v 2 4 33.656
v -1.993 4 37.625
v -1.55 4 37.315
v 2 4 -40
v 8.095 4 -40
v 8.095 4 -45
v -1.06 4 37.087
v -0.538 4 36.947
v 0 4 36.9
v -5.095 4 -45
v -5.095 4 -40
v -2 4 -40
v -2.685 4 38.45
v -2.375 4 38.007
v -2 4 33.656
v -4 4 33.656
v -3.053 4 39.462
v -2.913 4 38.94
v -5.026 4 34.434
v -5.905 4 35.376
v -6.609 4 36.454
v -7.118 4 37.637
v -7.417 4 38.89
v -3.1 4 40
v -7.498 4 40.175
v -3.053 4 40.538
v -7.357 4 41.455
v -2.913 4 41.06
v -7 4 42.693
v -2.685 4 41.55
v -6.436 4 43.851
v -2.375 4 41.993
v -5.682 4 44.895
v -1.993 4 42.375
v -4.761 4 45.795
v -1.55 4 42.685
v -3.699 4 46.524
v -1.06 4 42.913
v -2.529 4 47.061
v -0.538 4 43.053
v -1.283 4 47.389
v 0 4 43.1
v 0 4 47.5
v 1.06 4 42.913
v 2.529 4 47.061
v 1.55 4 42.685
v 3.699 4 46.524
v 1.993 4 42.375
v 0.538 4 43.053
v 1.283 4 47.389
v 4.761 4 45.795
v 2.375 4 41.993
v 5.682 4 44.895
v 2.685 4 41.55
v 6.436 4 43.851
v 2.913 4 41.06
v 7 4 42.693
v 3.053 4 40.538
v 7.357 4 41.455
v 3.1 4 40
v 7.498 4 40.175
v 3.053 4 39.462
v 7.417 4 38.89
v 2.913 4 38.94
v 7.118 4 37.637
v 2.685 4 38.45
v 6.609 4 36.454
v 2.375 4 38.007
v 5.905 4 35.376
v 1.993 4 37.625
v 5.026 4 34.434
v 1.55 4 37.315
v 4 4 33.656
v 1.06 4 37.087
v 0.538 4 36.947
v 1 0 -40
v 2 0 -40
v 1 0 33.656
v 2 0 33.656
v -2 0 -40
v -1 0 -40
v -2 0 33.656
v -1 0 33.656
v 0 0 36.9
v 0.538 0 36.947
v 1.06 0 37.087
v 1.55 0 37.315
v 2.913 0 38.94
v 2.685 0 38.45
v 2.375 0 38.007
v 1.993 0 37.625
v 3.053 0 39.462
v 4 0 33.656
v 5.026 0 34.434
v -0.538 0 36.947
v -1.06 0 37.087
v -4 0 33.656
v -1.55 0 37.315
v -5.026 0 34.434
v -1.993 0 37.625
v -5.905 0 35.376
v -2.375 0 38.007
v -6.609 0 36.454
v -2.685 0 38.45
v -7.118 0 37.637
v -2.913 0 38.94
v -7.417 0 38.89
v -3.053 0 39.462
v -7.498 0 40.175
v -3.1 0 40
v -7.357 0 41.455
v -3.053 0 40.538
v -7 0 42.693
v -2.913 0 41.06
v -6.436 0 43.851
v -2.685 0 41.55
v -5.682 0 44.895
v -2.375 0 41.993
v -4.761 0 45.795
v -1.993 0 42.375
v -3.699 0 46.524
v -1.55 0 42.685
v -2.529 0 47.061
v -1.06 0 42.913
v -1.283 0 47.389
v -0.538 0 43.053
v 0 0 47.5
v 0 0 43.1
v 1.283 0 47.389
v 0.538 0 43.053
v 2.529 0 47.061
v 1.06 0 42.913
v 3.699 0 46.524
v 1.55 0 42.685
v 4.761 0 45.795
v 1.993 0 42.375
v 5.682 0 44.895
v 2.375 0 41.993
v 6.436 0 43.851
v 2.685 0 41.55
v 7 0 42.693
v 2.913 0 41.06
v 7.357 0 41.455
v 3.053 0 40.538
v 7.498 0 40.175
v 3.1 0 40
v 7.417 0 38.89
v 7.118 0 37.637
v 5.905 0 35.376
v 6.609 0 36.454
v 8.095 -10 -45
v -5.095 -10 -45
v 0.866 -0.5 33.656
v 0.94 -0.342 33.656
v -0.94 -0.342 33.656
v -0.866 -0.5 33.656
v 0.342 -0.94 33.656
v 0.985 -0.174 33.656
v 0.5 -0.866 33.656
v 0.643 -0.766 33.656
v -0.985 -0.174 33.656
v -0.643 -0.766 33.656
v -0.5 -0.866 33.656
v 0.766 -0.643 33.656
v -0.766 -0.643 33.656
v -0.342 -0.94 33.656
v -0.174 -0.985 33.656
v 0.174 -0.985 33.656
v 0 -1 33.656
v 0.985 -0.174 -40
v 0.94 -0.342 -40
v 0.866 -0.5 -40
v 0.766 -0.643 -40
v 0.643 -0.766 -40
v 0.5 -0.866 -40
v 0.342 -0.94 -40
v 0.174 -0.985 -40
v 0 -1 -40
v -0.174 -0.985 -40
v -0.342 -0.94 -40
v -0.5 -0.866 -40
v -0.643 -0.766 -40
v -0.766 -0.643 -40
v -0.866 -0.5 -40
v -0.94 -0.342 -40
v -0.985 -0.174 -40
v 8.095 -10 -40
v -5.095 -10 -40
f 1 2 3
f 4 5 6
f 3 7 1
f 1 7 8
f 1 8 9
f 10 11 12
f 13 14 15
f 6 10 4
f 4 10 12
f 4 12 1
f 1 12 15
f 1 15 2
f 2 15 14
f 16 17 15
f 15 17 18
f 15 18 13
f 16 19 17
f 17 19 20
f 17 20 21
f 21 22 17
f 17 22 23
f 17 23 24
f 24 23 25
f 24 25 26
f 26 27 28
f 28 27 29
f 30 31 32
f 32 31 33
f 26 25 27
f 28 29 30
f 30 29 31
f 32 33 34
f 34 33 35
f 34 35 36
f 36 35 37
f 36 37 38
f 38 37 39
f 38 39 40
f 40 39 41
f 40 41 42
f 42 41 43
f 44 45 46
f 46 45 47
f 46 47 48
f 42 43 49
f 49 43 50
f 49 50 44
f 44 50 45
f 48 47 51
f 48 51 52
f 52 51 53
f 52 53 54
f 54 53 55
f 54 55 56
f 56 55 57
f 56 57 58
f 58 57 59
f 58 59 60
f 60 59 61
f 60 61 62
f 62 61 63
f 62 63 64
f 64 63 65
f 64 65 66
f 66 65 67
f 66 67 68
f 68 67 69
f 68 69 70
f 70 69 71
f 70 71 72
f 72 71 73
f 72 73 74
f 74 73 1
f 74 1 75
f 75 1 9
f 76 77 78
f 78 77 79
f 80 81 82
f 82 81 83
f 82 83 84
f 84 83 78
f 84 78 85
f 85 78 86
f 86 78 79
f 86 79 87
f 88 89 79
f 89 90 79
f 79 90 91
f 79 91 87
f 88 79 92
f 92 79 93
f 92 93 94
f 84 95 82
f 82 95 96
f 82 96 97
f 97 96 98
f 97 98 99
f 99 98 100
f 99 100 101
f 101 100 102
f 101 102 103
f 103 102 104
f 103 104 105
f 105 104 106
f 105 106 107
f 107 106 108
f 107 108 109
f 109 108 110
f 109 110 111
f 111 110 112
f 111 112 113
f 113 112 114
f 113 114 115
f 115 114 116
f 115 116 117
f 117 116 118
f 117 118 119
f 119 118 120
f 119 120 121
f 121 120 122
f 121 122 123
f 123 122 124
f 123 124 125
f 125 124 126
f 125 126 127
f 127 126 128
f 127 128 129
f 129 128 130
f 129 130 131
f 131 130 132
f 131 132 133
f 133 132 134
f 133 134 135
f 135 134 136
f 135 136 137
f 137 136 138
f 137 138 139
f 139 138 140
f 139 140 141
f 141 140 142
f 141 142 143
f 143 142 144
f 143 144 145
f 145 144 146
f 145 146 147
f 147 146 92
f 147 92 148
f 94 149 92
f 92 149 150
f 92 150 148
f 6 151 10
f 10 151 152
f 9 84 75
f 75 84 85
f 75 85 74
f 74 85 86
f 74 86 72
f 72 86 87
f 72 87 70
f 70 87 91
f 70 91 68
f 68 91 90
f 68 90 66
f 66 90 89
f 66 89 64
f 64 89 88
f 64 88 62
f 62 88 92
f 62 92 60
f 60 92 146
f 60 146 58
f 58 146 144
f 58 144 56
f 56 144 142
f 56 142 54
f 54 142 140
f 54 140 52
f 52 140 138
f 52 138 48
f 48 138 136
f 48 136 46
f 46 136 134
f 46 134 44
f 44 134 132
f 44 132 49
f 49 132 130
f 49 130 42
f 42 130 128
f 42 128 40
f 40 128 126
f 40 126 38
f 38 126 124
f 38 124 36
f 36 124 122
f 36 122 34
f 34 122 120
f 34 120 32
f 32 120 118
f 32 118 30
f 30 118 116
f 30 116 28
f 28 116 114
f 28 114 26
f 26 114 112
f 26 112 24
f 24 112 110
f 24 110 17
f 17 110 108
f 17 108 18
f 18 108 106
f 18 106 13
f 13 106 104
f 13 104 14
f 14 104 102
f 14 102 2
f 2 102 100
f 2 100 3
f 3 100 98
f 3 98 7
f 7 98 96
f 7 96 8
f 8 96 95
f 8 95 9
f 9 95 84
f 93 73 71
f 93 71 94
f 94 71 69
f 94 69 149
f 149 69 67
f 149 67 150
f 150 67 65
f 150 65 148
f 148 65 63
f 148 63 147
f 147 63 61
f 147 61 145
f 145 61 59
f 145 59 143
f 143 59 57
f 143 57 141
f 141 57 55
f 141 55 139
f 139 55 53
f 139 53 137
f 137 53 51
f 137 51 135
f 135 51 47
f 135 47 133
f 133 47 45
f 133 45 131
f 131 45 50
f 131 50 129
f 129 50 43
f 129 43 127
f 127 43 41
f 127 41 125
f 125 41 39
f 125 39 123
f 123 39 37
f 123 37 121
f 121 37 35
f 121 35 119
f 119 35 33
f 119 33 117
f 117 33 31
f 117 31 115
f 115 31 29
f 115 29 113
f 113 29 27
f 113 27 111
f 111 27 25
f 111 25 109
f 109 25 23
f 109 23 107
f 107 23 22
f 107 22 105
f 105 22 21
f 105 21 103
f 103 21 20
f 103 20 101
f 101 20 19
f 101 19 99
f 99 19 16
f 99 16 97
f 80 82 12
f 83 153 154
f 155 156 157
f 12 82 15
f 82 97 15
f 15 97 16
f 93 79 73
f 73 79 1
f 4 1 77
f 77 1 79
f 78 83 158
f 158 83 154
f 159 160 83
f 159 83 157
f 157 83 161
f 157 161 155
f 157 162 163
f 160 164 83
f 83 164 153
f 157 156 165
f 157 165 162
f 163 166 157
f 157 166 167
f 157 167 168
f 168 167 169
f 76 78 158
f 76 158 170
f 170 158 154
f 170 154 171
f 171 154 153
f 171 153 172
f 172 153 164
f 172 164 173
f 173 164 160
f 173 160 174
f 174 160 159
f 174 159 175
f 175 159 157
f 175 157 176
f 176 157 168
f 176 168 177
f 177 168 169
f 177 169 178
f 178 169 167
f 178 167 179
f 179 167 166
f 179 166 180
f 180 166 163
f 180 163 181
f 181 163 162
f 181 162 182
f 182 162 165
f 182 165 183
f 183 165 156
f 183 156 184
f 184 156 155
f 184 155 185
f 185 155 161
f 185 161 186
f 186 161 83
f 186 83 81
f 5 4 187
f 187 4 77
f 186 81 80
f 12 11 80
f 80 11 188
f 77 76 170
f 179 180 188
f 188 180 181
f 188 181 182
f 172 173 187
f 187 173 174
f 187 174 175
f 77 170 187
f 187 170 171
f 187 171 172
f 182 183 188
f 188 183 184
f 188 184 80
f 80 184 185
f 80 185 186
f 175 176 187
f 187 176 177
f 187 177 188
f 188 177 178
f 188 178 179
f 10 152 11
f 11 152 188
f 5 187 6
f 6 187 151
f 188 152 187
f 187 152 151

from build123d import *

# Parameters (mm, degrees)
SKETCH1_W                       = 8
SKETCH1_H                       = 90
SKETCH1_R                       = 3.1
BOSS_EXTRUDE1_DEPTH             = 4
FILLET1_R                       = 4
BOSS_EXTRUDE2_START             = -4
SKETCH2_R                       = 7.5
SKETCH2_R_2                     = 3.1
BOSS_EXTRUDE2_DEPTH             = 4
SKETCH3_W                       = 2
SKETCH3_H                       = 78.65571123
CUT_EXTRUDE2_DEPTH              = 49.254533466
SKETCH4_W                       = 1
SKETCH4_H                       = 78.65571123
SKETCH5_W                       = 13.19082965
SKETCH5_H                       = 5
BOSS_EXTRUDE5_DEPTH             = 10
BOSS_EXTRUDE5_DIRECTION_2_REACH = 50.255


with BuildPart() as part:
    # Sketch1 → Boss-Extrude1 (new body)
    with BuildSketch(Plane(origin=(0, 0, 0), x_dir=(1, 0, 0), z_dir=(0, 1, 0))):
        Rectangle(SKETCH1_W, SKETCH1_H)
        with Locations(Location((0, -40, 0), (0, 0, 270))):
            Circle(SKETCH1_R, mode=Mode.SUBTRACT)
    extrude(amount=BOSS_EXTRUDE1_DEPTH)

    # Fillet1
    fillet1_edges = [part.edges().sort_by_distance(p)[0] for p in [
        (-4, 2, 45),
        (4, 2, 45),
    ]]
    fillet(fillet1_edges, radius=FILLET1_R - 0.0001)  # a hair under: the kernel refuses the full size

    # Sketch2 → Boss-Extrude2 (add)
    with BuildSketch(Plane(origin=(0, 4, 0), x_dir=(1, 0, 0), z_dir=(0, 1, 0)).offset(BOSS_EXTRUDE2_START)):
        with Locations((0, -40)):
            Circle(SKETCH2_R)
        with Locations(Location((0, -40, 0), (0, 0, 270))):
            Circle(SKETCH2_R_2, mode=Mode.SUBTRACT)
    extrude(amount=BOSS_EXTRUDE2_DEPTH)

    # Sketch3 → Cut-Extrude2 (cut, through all)
    with BuildSketch(Plane(origin=(0, 4, 0), x_dir=(1, 0, 0), z_dir=(0, 1, 0))):
        with Locations((3, 5.672144385)):
            Rectangle(SKETCH3_W, SKETCH3_H)
        with Locations((-3, 5.672144385)):
            Rectangle(SKETCH3_W, SKETCH3_H)
    extrude(amount=-CUT_EXTRUDE2_DEPTH, mode=Mode.SUBTRACT)

    # Sketch4 → Revolve1 (revolve)
    with BuildSketch(Plane.XZ):
        with Locations((-0.5, -5.672144385)):
            Rectangle(SKETCH4_W, SKETCH4_H)
    revolve(axis=Axis((0, 0, 40), (0, 0, -1)))

    # Sketch5 → Boss-Extrude5 (add)
    with BuildSketch(Plane.XZ):
        with Locations((1.5, -42.5)):
            Rectangle(SKETCH5_W, SKETCH5_H)
    extrude(amount=BOSS_EXTRUDE5_DEPTH)

    # Boss-Extrude5 direction 2: up to this face of the body (flat: up to its plane)
    boss_extrude5_direction_2_end = Plane(part.part.faces().sort_by_distance((0, 4, 8.504231921))[0])
    # Sketch5 → Boss-Extrude5 direction 2 (add, up to the picked face)
    with BuildSketch(Plane.XZ, mode=Mode.PRIVATE) as boss_extrude5_direction_2_sk1:
        with Locations((1.5, -42.5)):
            Rectangle(SKETCH5_W, SKETCH5_H)
    boss_extrude5_direction_2_tool1 = split(extrude(boss_extrude5_direction_2_sk1.sketch, amount=-BOSS_EXTRUDE5_DIRECTION_2_REACH, mode=Mode.PRIVATE), bisect_by=boss_extrude5_direction_2_end, keep=Keep.BOTH, mode=Mode.PRIVATE)
    add(boss_extrude5_direction_2_tool1.solids().sort_by(Axis((1.5, 0, -42.5), (0, 1, 0)))[0])


solid = part.part
